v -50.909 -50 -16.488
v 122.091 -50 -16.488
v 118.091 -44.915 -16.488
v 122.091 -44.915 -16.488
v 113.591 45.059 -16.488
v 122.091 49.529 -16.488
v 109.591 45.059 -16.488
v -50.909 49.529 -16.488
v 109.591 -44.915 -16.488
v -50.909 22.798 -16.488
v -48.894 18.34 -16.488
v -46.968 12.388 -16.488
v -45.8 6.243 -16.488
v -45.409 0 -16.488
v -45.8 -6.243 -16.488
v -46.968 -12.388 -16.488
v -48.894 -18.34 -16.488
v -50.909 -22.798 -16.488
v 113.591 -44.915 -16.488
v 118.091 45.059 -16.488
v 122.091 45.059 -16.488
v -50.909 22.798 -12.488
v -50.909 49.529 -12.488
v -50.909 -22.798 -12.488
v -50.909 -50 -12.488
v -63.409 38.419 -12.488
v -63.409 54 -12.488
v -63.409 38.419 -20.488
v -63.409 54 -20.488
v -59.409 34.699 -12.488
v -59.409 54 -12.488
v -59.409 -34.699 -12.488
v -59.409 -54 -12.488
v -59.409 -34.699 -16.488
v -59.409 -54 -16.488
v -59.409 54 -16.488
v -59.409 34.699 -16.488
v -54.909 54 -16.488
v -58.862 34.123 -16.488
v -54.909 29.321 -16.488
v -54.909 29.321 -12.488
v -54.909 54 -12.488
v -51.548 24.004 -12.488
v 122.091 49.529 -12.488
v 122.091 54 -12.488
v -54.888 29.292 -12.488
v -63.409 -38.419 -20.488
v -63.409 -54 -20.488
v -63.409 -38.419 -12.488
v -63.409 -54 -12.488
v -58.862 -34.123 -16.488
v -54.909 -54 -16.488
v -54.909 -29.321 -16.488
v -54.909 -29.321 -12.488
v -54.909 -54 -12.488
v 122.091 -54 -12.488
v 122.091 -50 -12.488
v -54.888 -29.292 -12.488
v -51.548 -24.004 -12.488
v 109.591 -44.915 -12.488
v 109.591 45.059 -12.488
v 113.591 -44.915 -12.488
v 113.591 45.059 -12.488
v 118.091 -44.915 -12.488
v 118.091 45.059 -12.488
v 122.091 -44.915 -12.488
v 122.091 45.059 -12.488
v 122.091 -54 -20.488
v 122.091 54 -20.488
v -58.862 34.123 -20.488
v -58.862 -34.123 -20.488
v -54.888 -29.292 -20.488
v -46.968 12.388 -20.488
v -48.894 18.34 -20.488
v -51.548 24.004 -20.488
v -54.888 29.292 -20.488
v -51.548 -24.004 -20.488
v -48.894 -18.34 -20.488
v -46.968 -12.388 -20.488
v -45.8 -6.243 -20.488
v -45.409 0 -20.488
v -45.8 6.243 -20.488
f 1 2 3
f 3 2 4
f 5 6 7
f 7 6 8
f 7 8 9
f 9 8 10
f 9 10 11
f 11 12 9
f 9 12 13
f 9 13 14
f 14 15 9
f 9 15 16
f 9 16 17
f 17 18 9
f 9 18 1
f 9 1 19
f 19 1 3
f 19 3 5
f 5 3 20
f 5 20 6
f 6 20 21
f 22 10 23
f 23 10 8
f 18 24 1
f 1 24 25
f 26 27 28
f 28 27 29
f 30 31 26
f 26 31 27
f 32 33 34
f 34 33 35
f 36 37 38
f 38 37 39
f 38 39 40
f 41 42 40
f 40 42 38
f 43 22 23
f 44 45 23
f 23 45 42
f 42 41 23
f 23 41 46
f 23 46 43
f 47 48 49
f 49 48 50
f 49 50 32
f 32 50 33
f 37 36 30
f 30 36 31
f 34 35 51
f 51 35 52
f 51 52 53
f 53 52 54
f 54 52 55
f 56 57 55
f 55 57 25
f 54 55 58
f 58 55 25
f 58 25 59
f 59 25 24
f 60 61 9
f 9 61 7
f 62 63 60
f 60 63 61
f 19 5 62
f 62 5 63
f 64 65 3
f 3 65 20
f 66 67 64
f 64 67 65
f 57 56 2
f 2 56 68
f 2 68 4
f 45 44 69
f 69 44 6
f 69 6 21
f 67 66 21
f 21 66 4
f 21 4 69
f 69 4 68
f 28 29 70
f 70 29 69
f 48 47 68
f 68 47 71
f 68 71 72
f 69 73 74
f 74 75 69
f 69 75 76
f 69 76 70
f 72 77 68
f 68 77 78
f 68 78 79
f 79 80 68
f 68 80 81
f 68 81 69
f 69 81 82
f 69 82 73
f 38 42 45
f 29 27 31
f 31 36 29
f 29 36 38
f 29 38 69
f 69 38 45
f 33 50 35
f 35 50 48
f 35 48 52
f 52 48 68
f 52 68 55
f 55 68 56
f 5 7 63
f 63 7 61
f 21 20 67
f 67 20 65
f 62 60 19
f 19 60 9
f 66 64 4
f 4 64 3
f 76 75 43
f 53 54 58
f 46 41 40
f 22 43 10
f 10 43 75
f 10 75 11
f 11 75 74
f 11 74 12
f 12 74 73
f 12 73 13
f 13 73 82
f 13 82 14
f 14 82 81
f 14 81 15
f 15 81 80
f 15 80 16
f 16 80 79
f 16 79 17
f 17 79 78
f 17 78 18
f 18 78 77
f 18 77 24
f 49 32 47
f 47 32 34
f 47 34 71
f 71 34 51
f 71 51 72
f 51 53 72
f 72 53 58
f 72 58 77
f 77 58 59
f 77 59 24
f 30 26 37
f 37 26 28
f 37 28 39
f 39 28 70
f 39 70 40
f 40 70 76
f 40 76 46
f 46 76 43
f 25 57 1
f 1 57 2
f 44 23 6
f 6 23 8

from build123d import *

# Parameters (mm, degrees)
BOSS_EXTRUDE1_DEPTH = 54
SKETCH7_W           = 12.542465984
SKETCH7_H           = 8.941456765
CUT_EXTRUDE4_DEPTH  = 4
SKETCH8_W           = 12.536281236
SKETCH8_H           = 9.084679825
CUT_EXTRUDE5_DEPTH  = 4
SKETCH10_R          = 50
CUT_EXTRUDE6_DEPTH  = 10
SKETCH12_W          = 173
SKETCH12_H          = 4
SKETCH12_H_2        = 4.470728383
BOSS_EXTRUDE2_DEPTH = 4


with BuildPart() as part:
    # Sketch1 → Boss-Extrude1 (new, symmetric)
    with BuildSketch(Plane(origin=(0, 0, 0), x_dir=(1, 0, 0), z_dir=(0, 1, 0))):
        Polygon((-63.408892702, 20.487993735), (122.091107298, 20.487993735), (122.091107298, 12.487993735), (118.091107298, 12.487993735), (118.091107298, 16.487993735), (113.591107298, 16.487993735), (113.591107298, 12.487993735), (109.591107298, 12.487993735), (109.591107298, 16.487993735), (-50.908892702, 16.487993735), (-50.908892702, 12.487993735), (-54.908892702, 12.487993735), (-54.908892702, 16.487993735), (-59.408892702, 16.487993735), (-59.408892702, 12.487993735), (-63.408892702, 12.487993735), align=None)
    extrude(amount=BOSS_EXTRUDE1_DEPTH, both=True)

    # Sketch7 → Cut-Extrude4 (cut)
    with BuildSketch(Plane.XY.offset(-12.487993735)):
        with Locations((115.819874306, 49.529271618)):
            Rectangle(SKETCH7_W, SKETCH7_H)
    extrude(amount=-CUT_EXTRUDE4_DEPTH, mode=Mode.SUBTRACT)

    # Sketch8 → Cut-Extrude5 (cut)
    with BuildSketch(Plane.XY.offset(-12.487993735)):
        with Locations((115.82296668, -49.457660088)):
            Rectangle(SKETCH8_W, SKETCH8_H)
    extrude(amount=-CUT_EXTRUDE5_DEPTH, mode=Mode.SUBTRACT)

    # Sketch10 → Cut-Extrude6 (cut)
    with BuildSketch(Plane.XY.offset(-12.487993735)):
        with Locations((-95.408892702, 0)):
            Circle(SKETCH10_R)
    extrude(amount=-CUT_EXTRUDE6_DEPTH, mode=Mode.SUBTRACT)

    # Sketch12 → Boss-Extrude2 (add)
    with BuildSketch(Plane.XY.offset(-16.487993735)):
        with Locations((35.591107298, -52)):
            Rectangle(SKETCH12_W, SKETCH12_H)
        with Locations((35.591107298, 51.764635809)):
            Rectangle(SKETCH12_W, SKETCH12_H_2)
    extrude(amount=BOSS_EXTRUDE2_DEPTH)


solid = part.part
